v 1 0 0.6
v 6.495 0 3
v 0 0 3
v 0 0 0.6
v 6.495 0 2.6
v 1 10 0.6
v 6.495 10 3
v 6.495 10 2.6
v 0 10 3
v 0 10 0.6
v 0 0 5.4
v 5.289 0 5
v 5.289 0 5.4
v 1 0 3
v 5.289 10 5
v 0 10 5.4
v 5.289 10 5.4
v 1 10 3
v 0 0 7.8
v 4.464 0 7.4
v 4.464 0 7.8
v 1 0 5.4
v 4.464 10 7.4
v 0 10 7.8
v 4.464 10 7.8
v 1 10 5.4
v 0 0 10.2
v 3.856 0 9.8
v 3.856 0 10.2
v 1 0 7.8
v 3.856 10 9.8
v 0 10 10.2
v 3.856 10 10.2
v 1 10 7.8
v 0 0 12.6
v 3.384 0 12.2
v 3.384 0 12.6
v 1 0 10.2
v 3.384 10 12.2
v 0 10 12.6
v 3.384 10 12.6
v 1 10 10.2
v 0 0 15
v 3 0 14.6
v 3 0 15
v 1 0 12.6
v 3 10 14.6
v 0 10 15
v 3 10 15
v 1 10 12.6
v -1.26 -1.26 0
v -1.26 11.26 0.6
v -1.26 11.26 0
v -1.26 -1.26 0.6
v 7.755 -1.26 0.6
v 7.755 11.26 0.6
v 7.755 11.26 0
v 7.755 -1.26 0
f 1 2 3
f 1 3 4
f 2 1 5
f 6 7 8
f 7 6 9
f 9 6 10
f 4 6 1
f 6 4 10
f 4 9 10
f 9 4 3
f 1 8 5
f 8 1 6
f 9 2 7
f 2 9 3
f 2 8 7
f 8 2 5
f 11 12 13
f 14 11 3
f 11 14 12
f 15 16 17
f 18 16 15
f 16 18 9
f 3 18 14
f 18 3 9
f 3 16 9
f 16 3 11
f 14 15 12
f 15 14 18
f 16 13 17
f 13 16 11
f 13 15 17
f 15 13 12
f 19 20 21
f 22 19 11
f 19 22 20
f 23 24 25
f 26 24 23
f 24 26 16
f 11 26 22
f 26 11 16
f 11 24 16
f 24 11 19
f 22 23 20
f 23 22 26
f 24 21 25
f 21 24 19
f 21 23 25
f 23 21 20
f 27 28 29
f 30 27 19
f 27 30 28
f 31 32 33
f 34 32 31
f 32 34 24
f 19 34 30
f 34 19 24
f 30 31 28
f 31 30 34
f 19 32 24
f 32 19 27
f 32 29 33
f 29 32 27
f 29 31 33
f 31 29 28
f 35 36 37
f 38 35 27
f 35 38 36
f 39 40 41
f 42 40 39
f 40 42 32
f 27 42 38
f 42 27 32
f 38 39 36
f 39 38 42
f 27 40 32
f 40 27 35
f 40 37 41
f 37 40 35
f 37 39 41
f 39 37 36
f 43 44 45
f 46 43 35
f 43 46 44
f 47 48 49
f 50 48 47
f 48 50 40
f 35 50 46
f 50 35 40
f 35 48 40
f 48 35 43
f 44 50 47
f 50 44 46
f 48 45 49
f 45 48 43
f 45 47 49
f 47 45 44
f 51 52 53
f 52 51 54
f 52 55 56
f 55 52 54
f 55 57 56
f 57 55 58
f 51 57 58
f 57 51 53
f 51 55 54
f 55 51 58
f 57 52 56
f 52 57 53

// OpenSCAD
include <3d-printer-testing-suite.scad>

/* [Hidden] */
test_type = "overhang";
